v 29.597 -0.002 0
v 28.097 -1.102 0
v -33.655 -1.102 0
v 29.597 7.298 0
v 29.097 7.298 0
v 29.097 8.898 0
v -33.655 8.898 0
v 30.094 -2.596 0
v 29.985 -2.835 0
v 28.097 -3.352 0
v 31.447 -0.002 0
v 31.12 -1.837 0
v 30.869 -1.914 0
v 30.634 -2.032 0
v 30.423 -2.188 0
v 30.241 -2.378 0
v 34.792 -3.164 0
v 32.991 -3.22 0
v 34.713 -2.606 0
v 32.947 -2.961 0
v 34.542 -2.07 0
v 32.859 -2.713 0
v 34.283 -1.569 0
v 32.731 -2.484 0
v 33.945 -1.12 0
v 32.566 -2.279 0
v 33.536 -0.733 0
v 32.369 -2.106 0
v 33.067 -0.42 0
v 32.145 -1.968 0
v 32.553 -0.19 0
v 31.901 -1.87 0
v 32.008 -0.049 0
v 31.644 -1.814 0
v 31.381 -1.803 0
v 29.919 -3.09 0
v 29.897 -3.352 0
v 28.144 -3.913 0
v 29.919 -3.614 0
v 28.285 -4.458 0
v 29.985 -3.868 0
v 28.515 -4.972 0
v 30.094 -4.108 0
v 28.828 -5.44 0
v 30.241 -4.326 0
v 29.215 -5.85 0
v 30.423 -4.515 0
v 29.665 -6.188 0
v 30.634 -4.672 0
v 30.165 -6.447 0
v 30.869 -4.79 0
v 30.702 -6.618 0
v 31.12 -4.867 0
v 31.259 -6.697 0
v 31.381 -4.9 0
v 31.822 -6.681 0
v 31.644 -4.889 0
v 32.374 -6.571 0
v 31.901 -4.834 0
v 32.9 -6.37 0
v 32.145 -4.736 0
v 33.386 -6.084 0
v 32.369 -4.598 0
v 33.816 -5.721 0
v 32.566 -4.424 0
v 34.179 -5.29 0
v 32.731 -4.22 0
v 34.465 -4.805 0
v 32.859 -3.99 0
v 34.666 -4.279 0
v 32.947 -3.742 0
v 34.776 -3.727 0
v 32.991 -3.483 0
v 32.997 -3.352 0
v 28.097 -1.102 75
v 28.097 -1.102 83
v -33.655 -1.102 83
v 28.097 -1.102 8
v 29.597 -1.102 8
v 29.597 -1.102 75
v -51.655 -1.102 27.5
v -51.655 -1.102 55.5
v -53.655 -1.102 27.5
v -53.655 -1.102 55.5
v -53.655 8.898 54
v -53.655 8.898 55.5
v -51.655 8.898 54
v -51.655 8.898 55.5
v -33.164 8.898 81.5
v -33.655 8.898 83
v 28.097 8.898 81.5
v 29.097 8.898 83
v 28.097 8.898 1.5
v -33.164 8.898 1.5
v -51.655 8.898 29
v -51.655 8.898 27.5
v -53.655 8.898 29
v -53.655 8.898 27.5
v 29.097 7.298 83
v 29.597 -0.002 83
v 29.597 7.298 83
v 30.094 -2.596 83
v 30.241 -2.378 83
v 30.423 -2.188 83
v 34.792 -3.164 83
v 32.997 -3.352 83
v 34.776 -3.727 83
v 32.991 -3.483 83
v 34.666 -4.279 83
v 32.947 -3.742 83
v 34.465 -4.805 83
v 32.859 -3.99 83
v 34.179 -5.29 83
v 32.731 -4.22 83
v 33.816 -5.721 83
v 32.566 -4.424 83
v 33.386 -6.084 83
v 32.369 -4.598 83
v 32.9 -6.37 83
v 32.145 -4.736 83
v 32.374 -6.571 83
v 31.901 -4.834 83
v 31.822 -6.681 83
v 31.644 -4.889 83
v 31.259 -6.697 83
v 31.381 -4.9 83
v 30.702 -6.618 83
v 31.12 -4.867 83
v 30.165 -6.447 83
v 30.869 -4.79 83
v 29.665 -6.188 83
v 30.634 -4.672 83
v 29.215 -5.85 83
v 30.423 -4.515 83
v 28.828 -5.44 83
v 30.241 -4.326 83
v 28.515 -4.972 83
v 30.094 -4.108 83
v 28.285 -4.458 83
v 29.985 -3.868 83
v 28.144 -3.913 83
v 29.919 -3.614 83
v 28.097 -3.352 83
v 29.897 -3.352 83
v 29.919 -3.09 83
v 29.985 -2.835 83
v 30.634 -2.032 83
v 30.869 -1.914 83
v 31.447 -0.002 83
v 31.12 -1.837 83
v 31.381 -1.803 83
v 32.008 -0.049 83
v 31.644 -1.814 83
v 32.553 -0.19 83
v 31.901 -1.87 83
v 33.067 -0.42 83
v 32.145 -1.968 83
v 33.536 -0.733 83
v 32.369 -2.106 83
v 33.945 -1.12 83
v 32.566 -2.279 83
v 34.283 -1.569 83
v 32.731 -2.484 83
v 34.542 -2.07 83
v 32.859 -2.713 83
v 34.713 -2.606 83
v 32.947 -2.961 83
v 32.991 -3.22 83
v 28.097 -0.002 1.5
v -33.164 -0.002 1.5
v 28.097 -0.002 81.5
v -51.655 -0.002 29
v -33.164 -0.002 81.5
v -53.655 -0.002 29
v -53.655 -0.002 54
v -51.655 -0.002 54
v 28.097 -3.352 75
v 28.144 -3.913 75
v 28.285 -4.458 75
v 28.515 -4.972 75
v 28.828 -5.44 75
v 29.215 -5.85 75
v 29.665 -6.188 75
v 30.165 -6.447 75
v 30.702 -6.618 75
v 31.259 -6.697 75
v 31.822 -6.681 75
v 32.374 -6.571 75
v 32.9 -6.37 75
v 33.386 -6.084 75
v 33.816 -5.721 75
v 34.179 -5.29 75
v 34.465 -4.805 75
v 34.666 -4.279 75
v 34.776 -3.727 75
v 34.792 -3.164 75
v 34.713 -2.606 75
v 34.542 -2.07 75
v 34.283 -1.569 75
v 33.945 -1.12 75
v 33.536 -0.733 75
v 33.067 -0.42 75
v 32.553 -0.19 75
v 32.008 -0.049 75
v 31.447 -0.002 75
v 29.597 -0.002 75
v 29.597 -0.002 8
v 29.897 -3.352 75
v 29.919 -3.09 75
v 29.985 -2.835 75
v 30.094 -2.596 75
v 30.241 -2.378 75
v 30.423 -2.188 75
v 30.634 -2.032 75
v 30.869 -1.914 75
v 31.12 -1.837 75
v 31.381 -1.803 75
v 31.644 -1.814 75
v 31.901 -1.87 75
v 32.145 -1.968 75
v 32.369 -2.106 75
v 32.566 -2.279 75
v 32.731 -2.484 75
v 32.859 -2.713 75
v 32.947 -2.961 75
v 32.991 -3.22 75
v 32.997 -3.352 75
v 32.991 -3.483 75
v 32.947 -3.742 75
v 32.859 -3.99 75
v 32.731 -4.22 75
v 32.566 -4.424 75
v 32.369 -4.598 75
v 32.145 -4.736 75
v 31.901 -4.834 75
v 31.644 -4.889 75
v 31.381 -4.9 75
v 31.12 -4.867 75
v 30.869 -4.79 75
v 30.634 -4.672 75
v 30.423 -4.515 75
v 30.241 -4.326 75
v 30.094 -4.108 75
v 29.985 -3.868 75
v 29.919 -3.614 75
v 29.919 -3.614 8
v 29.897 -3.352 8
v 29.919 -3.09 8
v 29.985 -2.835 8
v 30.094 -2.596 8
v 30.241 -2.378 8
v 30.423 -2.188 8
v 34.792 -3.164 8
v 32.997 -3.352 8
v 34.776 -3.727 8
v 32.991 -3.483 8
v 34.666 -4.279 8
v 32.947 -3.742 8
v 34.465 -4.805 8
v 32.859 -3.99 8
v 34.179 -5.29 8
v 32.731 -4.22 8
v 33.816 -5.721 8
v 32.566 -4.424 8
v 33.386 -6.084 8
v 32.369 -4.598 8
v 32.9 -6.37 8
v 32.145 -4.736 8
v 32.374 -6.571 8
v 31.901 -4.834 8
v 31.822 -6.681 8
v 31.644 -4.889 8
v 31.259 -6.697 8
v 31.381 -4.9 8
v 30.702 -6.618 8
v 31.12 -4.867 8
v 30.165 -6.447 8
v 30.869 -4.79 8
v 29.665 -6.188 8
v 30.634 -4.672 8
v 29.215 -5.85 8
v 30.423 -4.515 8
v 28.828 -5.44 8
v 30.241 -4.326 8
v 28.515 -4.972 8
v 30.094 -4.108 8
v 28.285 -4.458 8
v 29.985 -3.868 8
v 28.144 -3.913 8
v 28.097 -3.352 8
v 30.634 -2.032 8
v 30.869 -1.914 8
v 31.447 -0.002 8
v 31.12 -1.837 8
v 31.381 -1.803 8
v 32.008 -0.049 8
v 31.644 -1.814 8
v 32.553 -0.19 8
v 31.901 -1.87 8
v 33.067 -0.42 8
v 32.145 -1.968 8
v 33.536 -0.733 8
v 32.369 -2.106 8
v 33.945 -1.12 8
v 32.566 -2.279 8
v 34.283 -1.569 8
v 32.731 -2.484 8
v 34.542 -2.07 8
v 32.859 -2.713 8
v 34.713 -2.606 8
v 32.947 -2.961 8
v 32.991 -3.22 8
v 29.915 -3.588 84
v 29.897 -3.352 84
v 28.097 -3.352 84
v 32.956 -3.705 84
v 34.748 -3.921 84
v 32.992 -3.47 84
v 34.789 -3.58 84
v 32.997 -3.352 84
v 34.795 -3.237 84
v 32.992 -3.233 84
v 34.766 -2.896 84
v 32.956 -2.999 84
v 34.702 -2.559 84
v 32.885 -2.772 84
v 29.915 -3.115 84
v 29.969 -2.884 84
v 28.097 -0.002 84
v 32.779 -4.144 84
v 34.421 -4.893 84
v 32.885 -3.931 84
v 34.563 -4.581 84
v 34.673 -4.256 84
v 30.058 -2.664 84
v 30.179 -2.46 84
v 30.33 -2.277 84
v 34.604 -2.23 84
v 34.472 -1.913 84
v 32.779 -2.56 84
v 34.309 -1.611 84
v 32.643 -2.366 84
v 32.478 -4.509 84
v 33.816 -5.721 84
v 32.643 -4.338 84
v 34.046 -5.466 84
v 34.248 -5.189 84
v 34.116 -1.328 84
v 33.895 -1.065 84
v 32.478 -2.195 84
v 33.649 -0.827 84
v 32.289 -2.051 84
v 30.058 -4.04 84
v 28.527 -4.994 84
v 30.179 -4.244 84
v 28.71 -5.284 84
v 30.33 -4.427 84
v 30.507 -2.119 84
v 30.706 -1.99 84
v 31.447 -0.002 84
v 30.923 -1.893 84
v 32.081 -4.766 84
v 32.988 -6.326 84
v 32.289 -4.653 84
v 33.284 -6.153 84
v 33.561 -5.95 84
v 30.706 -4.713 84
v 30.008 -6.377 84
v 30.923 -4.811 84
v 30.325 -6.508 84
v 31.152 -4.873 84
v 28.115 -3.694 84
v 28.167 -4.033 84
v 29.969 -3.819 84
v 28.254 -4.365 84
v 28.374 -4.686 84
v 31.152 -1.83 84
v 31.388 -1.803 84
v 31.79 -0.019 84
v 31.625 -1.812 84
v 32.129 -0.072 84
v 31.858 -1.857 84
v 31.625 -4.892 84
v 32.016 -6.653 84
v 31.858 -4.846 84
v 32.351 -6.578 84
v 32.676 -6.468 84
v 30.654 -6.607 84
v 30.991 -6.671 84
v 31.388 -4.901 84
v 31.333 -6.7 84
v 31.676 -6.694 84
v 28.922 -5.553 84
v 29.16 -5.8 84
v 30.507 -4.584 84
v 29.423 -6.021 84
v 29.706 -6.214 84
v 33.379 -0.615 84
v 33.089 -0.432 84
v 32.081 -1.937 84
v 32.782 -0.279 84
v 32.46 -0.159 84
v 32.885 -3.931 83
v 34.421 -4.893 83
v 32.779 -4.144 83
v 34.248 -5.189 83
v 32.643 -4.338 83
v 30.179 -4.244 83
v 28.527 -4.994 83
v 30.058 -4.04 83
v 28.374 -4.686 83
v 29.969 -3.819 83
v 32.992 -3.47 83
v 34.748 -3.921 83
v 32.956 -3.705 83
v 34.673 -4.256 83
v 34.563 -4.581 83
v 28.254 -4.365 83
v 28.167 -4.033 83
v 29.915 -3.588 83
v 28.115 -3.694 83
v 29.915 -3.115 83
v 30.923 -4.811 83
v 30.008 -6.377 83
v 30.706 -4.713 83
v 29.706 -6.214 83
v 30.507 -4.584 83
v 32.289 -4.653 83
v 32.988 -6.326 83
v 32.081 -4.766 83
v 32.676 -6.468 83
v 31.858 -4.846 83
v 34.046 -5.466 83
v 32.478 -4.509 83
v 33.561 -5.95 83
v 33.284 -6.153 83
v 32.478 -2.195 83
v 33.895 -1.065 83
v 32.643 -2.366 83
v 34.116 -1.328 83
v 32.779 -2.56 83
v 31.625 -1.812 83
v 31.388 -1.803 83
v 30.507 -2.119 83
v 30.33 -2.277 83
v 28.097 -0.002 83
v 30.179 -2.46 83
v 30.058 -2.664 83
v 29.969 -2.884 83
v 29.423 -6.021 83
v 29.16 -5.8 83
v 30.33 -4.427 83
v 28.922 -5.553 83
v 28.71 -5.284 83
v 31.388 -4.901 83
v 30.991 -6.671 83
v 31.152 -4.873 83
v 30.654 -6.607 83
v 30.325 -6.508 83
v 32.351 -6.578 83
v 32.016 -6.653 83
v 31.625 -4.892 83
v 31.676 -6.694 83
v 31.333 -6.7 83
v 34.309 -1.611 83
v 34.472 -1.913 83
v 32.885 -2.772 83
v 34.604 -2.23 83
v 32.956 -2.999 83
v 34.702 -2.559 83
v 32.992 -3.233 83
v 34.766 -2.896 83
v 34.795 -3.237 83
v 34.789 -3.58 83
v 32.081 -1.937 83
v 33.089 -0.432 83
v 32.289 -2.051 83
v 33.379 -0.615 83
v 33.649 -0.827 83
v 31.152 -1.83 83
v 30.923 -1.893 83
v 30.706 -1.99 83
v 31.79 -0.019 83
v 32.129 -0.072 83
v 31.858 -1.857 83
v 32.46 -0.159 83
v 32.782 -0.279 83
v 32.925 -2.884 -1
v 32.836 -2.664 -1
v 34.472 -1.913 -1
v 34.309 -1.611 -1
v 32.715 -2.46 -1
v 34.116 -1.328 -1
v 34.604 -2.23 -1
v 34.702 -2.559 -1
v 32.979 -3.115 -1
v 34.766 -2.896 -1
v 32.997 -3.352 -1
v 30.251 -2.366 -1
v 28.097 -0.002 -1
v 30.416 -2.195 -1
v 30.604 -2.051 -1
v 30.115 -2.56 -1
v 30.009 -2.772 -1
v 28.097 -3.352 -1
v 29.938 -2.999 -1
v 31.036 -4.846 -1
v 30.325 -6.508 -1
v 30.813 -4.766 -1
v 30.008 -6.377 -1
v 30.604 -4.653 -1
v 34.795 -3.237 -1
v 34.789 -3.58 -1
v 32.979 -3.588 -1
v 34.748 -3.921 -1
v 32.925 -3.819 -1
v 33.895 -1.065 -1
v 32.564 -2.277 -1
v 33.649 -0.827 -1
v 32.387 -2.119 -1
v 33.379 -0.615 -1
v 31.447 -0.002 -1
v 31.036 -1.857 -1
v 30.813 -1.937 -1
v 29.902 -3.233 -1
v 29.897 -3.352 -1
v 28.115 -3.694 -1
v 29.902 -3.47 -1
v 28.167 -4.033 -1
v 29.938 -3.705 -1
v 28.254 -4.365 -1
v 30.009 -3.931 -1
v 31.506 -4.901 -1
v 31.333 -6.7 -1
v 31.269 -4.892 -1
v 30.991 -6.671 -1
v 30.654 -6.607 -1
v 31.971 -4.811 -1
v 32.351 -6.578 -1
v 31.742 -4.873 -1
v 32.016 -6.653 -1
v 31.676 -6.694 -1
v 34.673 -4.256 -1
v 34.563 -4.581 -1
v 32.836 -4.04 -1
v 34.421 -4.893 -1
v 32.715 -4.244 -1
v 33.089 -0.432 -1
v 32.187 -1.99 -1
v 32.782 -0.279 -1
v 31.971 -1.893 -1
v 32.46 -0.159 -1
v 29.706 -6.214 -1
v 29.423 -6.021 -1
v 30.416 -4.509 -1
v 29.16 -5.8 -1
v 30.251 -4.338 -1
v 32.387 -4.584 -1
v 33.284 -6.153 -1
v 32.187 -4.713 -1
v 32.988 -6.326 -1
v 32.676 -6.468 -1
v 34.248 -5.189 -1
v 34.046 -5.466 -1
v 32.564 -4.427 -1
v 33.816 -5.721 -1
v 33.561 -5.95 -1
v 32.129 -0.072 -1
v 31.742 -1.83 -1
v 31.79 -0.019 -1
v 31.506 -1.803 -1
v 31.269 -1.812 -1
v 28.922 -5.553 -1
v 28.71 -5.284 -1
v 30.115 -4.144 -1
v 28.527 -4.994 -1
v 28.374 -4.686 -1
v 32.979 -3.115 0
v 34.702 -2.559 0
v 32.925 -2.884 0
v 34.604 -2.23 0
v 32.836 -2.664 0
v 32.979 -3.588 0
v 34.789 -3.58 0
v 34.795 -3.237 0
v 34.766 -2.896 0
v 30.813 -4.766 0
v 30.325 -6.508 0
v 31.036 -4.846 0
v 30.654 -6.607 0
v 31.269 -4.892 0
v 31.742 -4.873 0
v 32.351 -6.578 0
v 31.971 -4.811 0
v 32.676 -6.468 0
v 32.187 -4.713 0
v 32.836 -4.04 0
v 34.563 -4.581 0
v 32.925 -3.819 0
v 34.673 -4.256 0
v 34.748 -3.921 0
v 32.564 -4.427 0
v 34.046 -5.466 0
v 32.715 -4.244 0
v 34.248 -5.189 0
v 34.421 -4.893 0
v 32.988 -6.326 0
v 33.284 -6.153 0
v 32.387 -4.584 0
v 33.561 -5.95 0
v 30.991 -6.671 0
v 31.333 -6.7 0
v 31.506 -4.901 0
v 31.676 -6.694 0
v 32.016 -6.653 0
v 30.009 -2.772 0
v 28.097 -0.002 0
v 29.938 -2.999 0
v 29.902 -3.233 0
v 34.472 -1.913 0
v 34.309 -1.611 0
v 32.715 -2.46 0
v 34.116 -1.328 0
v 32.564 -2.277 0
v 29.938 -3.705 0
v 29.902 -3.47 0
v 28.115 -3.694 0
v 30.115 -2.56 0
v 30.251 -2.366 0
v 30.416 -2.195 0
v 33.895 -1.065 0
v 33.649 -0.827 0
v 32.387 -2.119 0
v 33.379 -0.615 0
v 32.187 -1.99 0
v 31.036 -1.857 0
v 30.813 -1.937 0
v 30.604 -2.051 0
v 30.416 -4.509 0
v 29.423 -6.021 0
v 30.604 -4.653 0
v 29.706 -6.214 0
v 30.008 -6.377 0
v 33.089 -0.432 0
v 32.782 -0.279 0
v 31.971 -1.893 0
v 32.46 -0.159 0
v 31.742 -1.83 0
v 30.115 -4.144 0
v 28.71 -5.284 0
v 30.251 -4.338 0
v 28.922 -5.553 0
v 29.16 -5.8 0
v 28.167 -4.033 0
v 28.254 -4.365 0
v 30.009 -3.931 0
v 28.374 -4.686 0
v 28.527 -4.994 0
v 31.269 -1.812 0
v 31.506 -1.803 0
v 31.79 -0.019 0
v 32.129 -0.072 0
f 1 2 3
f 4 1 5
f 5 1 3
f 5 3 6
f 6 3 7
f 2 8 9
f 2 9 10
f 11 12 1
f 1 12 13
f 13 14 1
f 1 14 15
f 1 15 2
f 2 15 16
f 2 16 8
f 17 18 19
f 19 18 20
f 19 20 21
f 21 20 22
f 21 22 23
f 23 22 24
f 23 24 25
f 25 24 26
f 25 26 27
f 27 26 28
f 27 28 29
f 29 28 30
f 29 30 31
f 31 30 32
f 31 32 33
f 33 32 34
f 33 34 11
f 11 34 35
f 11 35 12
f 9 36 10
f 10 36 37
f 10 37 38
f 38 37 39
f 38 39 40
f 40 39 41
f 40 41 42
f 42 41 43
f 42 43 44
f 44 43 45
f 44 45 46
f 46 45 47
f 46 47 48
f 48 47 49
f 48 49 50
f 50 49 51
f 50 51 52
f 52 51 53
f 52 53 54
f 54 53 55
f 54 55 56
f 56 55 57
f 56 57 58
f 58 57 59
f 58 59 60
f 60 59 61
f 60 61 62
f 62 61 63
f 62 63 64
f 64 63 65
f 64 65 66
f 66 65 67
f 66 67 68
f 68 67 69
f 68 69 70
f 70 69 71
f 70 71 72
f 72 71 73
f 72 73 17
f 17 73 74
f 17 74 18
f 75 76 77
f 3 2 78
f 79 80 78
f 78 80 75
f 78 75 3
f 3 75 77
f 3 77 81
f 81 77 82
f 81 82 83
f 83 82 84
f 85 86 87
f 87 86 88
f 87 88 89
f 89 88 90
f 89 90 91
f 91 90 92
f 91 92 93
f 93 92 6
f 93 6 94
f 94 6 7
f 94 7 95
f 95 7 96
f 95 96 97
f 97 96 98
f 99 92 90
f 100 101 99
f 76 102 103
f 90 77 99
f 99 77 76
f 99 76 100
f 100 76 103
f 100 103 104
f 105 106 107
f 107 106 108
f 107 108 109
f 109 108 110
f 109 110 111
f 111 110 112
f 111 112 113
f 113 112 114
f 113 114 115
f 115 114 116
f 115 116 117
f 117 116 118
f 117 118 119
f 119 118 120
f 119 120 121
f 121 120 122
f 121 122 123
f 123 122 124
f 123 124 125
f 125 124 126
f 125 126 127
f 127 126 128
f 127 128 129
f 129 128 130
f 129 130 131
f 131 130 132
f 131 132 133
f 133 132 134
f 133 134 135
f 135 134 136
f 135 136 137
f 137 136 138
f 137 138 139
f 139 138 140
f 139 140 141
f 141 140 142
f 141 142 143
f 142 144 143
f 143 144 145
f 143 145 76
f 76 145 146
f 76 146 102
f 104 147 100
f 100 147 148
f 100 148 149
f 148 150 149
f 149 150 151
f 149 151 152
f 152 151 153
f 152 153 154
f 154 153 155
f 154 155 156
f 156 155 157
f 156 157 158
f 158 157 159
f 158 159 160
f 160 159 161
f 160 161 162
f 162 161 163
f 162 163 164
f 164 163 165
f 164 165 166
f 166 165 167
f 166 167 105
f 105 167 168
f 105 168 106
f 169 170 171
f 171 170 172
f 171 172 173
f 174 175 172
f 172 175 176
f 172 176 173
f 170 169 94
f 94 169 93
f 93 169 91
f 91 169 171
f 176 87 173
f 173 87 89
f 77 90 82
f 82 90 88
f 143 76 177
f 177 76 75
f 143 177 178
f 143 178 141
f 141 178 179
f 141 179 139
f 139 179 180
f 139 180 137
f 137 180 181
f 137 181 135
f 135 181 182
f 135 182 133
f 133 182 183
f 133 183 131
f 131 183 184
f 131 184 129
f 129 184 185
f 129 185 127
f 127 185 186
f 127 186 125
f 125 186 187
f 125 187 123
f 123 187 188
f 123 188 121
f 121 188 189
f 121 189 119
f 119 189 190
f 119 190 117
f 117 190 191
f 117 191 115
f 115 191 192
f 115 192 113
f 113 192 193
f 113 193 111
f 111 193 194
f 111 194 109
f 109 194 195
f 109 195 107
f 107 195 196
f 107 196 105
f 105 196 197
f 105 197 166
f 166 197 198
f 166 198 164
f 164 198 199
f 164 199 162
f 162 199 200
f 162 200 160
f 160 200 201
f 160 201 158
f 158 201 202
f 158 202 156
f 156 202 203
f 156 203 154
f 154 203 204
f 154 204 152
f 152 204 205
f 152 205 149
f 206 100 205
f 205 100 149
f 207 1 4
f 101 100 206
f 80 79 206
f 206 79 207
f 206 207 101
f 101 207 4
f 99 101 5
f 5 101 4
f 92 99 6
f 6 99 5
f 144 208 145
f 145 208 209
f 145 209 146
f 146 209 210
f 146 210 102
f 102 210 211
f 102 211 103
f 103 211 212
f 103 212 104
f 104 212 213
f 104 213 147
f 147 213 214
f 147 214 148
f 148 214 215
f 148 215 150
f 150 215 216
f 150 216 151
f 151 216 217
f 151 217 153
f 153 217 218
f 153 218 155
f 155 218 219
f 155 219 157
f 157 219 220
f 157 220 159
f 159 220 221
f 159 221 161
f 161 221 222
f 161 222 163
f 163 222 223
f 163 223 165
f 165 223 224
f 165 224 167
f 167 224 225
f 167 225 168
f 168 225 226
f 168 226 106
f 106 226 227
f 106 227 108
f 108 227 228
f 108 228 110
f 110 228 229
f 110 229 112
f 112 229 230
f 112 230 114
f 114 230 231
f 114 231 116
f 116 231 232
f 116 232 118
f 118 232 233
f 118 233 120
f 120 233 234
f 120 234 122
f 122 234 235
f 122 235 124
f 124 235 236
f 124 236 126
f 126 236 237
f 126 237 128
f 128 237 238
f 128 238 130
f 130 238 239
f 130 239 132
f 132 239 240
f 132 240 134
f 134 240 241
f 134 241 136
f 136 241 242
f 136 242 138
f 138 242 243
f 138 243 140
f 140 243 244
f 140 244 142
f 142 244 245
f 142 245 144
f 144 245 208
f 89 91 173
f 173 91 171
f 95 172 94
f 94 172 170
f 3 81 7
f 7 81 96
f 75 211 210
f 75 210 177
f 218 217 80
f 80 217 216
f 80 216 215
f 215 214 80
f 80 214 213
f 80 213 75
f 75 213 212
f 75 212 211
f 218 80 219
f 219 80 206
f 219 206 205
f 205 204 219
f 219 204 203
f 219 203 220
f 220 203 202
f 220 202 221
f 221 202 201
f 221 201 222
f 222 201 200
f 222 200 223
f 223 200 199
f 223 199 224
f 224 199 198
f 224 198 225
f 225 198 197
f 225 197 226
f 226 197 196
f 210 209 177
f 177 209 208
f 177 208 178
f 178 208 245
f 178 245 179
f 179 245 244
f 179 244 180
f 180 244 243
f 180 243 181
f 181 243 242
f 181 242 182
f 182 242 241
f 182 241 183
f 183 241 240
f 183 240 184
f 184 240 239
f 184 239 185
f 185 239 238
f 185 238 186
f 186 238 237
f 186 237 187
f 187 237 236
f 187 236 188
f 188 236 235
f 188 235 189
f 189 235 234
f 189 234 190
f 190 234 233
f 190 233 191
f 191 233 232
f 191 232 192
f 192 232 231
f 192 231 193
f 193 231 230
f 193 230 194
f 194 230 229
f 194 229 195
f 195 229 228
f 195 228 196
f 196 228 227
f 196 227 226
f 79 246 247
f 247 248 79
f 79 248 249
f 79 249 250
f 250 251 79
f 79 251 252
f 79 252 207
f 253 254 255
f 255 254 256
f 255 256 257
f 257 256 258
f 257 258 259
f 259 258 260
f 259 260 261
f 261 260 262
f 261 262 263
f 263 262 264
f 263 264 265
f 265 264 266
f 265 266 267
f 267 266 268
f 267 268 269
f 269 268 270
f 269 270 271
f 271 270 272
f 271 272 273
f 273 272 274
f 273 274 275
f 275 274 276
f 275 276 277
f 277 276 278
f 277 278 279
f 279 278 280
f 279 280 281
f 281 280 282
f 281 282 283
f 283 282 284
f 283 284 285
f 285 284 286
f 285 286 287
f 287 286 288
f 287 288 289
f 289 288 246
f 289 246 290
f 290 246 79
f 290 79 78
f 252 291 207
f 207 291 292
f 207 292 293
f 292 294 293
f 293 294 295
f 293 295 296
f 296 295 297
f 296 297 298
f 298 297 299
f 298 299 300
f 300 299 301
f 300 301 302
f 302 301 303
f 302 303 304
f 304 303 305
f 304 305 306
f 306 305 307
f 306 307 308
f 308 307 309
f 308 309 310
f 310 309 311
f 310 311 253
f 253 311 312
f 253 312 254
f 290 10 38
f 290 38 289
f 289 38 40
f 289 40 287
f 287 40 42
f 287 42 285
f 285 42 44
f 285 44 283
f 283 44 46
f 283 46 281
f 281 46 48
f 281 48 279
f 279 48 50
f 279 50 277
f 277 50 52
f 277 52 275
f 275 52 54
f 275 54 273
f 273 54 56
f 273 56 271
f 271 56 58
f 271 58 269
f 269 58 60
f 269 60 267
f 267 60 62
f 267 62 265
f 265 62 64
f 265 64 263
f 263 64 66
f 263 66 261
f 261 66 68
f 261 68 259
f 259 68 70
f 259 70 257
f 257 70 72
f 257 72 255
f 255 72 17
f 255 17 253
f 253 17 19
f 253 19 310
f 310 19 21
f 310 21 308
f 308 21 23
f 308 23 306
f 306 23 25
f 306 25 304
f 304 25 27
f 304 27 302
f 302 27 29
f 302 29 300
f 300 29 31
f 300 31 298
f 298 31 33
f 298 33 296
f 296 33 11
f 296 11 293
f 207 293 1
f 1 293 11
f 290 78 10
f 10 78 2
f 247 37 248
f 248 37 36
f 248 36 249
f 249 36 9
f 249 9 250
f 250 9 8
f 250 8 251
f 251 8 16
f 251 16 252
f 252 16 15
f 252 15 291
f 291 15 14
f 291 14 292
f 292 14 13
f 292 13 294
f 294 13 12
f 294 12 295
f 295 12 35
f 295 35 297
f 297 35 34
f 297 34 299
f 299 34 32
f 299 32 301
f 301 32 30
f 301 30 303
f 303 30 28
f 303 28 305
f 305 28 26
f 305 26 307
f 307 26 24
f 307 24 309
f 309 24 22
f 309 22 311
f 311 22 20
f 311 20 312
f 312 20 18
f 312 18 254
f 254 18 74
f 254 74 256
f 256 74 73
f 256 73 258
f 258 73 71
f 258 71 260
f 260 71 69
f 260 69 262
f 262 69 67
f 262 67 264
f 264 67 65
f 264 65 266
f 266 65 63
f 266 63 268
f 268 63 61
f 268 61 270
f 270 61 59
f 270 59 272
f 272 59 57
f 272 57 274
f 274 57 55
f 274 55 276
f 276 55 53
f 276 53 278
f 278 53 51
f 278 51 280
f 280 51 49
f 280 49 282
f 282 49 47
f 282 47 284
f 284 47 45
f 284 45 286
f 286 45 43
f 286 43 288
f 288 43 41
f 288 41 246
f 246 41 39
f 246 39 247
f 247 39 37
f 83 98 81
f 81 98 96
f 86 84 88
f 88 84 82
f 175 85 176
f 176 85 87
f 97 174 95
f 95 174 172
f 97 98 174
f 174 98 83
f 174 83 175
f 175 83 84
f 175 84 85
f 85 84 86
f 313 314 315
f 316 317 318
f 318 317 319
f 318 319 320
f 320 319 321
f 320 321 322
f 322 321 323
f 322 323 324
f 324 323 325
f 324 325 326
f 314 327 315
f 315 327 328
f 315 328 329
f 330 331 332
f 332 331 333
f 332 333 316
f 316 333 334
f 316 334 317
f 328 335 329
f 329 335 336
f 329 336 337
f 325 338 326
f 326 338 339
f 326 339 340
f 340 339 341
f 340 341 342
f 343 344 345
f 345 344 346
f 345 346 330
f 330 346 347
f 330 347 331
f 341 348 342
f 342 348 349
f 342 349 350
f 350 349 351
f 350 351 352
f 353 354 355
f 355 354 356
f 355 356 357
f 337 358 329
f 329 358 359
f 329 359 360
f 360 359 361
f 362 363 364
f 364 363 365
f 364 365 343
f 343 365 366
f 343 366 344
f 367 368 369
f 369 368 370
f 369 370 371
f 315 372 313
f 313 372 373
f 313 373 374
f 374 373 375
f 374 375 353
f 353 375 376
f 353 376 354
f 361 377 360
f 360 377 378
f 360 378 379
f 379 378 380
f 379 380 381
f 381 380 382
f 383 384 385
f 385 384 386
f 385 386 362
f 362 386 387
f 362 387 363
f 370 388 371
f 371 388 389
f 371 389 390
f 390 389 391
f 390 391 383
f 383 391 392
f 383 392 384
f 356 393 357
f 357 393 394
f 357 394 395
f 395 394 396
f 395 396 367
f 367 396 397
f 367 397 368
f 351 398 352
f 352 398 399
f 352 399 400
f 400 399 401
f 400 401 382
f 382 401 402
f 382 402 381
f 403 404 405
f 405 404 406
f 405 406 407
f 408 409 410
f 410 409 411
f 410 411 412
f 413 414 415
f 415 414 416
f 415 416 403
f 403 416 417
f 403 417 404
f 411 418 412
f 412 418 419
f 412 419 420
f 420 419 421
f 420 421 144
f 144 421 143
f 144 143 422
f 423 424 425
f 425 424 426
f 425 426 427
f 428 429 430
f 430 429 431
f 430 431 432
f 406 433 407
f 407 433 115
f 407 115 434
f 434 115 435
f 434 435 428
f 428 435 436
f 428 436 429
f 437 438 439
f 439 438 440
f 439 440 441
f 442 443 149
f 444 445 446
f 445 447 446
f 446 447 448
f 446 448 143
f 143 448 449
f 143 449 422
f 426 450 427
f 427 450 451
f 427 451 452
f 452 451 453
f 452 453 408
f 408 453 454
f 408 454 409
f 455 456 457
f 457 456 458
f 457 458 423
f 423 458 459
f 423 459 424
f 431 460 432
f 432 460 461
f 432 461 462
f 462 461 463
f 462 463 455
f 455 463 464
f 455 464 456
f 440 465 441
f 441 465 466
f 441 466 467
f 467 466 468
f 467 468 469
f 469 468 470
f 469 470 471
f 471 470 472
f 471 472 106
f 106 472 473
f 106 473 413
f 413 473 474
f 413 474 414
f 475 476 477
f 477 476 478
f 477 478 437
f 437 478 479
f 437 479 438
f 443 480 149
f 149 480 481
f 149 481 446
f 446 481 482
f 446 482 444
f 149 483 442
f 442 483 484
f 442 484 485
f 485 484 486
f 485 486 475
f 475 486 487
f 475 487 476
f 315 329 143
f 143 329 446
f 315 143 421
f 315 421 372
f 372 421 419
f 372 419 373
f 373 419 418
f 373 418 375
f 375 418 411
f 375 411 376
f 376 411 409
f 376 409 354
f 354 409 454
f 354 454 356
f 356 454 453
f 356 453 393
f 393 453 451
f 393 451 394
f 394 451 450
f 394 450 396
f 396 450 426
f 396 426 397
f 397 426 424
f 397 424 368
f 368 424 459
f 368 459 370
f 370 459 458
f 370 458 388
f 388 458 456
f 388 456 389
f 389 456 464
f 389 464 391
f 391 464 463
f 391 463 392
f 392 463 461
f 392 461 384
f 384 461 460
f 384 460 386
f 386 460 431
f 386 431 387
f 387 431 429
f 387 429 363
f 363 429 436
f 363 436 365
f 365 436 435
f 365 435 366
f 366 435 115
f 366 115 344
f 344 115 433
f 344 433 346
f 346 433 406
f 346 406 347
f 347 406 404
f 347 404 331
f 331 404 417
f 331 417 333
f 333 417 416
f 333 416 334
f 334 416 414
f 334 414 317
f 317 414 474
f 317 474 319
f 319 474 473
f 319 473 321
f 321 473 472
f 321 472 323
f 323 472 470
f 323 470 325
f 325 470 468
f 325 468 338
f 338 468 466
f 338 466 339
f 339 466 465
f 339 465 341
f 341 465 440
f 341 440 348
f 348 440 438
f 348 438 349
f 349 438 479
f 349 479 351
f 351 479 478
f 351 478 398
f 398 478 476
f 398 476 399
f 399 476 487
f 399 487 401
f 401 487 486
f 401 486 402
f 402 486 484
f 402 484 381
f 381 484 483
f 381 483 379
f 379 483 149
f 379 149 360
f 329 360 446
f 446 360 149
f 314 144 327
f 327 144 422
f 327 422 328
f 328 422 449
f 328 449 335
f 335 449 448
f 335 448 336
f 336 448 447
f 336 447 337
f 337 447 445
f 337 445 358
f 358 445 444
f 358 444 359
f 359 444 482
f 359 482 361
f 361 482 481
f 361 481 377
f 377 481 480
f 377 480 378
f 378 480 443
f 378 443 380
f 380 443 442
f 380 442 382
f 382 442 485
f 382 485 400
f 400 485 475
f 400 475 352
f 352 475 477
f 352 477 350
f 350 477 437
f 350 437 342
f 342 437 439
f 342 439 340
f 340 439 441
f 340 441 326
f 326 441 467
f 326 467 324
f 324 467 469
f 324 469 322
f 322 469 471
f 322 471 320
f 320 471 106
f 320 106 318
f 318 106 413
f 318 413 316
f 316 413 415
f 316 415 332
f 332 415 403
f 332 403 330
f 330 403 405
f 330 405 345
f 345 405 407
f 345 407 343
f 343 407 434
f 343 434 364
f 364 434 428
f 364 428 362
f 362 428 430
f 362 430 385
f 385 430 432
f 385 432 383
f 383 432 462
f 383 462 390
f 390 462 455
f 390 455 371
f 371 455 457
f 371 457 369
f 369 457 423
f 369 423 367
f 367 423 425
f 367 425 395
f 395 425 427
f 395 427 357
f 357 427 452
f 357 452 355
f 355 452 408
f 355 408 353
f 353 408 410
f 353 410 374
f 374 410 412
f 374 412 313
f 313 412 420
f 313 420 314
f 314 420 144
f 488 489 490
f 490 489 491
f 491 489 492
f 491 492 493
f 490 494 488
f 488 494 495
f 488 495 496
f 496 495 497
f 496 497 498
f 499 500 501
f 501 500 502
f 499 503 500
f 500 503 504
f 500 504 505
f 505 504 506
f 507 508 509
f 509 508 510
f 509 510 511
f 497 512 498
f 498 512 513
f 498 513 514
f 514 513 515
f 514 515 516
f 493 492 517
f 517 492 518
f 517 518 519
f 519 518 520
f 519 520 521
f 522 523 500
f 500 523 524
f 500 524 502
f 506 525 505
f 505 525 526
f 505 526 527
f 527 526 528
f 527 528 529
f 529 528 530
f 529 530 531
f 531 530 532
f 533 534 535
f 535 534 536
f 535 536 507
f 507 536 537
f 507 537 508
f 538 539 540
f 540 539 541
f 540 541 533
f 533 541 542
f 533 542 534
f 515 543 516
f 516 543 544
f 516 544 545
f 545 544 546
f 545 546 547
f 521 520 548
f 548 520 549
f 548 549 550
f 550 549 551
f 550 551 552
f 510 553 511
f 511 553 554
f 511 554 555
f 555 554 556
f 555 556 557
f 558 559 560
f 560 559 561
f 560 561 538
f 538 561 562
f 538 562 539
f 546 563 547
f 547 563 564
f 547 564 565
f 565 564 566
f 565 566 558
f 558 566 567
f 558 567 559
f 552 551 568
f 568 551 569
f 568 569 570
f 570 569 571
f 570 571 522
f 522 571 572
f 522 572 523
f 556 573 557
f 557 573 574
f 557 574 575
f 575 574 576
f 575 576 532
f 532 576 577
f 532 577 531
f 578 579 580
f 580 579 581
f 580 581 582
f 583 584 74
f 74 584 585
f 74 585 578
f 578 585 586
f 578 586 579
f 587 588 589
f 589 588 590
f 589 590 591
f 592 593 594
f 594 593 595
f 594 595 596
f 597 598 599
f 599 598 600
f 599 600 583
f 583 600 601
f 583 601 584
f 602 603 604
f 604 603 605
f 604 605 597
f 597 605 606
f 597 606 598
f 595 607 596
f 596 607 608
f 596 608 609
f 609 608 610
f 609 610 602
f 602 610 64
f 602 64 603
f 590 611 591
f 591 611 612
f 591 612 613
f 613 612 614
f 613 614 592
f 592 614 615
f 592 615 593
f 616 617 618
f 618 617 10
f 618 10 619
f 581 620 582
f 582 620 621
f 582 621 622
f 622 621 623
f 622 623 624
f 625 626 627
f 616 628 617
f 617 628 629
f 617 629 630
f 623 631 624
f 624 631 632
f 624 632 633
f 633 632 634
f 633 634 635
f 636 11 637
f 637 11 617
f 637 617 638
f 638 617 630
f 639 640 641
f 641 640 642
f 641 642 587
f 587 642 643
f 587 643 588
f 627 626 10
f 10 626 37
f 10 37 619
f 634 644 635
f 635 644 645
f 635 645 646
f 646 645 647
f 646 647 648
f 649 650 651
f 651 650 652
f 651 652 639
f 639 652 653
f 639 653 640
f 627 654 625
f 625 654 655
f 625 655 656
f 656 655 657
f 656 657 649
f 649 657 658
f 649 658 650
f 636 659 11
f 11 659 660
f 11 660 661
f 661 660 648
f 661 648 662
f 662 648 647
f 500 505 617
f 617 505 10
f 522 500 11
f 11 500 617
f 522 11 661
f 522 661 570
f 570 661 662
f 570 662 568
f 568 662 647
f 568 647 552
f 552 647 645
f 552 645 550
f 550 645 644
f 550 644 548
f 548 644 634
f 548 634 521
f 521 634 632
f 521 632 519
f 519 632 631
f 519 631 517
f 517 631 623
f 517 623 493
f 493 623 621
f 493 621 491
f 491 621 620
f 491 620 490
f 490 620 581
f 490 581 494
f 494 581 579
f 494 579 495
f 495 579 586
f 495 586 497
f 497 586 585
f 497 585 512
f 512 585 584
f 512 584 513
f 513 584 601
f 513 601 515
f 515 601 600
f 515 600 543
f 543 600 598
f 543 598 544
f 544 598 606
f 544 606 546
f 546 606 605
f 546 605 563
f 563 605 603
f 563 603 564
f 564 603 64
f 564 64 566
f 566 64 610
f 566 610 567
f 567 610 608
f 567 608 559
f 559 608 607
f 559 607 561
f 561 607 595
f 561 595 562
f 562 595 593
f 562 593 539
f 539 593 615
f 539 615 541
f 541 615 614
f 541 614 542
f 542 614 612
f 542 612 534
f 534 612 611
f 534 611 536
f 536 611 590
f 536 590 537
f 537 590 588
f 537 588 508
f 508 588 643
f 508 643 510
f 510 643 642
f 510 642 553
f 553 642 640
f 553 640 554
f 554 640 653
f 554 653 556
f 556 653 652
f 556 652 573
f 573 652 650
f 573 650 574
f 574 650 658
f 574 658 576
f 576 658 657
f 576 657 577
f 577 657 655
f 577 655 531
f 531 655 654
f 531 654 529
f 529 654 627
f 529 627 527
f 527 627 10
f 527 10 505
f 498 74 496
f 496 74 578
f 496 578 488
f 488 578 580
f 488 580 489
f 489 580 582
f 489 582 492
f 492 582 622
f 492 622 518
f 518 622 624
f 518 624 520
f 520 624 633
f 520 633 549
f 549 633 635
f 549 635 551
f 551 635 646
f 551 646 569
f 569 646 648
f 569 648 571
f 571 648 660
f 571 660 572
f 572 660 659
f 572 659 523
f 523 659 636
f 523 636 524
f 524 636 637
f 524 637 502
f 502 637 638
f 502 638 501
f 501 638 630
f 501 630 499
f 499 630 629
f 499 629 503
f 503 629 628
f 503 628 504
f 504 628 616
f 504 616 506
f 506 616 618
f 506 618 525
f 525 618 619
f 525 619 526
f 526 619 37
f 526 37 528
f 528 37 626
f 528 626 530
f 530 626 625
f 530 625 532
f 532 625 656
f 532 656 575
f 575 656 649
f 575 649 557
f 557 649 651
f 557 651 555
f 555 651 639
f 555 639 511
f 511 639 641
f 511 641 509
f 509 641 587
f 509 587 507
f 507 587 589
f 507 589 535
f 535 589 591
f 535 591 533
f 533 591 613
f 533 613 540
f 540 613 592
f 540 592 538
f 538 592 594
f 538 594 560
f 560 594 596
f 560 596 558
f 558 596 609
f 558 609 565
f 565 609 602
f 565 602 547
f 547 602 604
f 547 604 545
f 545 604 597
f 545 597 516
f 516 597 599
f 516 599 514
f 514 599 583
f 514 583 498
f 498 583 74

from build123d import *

# Parameters (mm, degrees)
SKETCH_2_R               = 1.55
EXTRUDE_1_DEPTH          = 83
SKETCH_3_W               = 79.752323104
SKETCH_3_H               = 1.5
EXTRUDE_2_DEPTH          = 8.9
EXTRUDE_2_2_DEPTH        = 8.9
EXTRUDE_3_DEPTH          = 8.9
CUT_EXTRUDE_2_DEPTH      = 9
CUT_EXTRUDE_2_DEPTH_BACK = 1.5
SKETCH_15_R              = 1.55
CUT_EXTRUDE_6_DEPTH      = 75
SKETCH_16_R              = 1.55
EXTRUDE_5_DEPTH          = 8
EXTRUDE_6_DEPTH          = 2
SKETCH_18_R              = 1.55
EXTRUDE_8_DEPTH          = 1
SKETCH_19_R              = 1.55
EXTRUDE_9_DEPTH          = 1


with BuildPart() as part:
    # Эскиз2 → Бобышка-Вытянуть1 (new body)
    with BuildSketch(Plane.XY):
        with BuildLine():
            Line((28.096955486, -1.101794634), (-25.790710178, -1.101794634))
            Line((-25.790710178, -1.101794634), (-31.655367618, -1.101794634))
            Line((-31.655367618, -1.101794634), (-51.655367618, -1.101794634))
            Line((-51.655367618, -1.101794634), (-51.655367618, -0.001794634))
            Line((-51.655367618, -0.001794634), (-31.655367618, -0.001794634))
            Line((-31.655367618, -0.001794634), (-29.655367618, -0.001794634))
            Line((-29.655367618, -0.001794634), (28.096955486, -0.001794634))
            Line((28.096955486, -0.001794634), (28.096955486, 8.898205366))
            Line((28.096955486, 8.898205366), (29.096955486, 8.898205366))
            Line((29.096955486, 8.898205366), (29.096955486, 7.298205366))
            Line((29.096955486, 7.298205366), (29.596955486, 7.298205366))
            Line((29.596955486, 7.298205366), (29.596955486, -0.001794634))
            Line((29.596955486, -0.001794634), (31.446955486, -0.001794634))
            ThreePointArc((31.446955486, -0.001794634), (33.815763203, -5.720602351), (28.096955486, -3.351794634))
            Line((28.096955486, -3.351794634), (28.096955486, -1.101794634))
        make_face()
        with Locations((31.446955486, -3.351794634)):
            Circle(SKETCH_2_R, mode=Mode.SUBTRACT)
    extrude(amount=EXTRUDE_1_DEPTH)



with BuildPart() as body_2:
    # Эскиз3 → Бобышка-Вытянуть2 (new body)
    with BuildSketch(Plane(origin=(0, -0.001794634, 0), x_dir=(1, 0, 0), z_dir=(0, 1, 0))):
        with Locations((-11.779206066, -0.75)):
            Rectangle(SKETCH_3_W, SKETCH_3_H)
    extrude(amount=EXTRUDE_2_DEPTH)


with BuildPart() as body_3:
    # Эскиз3 → Extrude 2 2 (new body)
    with BuildSketch(Plane(origin=(0, -0.001794634, 0), x_dir=(1, 0, 0), z_dir=(0, 1, 0))):
        with Locations((-11.779206066, -82.25)):
            Rectangle(SKETCH_3_W, SKETCH_3_H)
    extrude(amount=EXTRUDE_2_2_DEPTH)


with BuildPart() as part_1:
    add(part.part)

    add(body_2.part)  # Бобышка-Вытянуть3 merges body 2

    add(body_3.part)  # Бобышка-Вытянуть3 merges body 3
    # Эскиз5 → Бобышка-Вытянуть3 (add)
    with BuildSketch(Plane(origin=(0, -0.001794634, 0), x_dir=(1, 0, 0), z_dir=(0, 1, 0))):
        Polygon((-32.155367618, -83), (-51.655367618, -54), (-51.655367618, -55.5), (-33.655367618, -83), align=None)
        Polygon((-33.655367618, 0), (-51.655367618, -27.5), (-51.655367618, -29), (-32.155367618, 0), align=None)
    extrude(amount=EXTRUDE_3_DEPTH)

    # Эскиз7 → Вырез-Вытянуть2 (cut, two sides: drawn at the far end of the back side and taken through both)
    with BuildSketch(Plane(origin=(0, -0.001794634, 0), x_dir=(1, 0, 0), z_dir=(0, 1, 0)).offset(-CUT_EXTRUDE_2_DEPTH_BACK)):
        Polygon((-51.655367618, -27.5), (-51.655367618, 0), (-33.655367618, 0), (-34.637185799, -1.5), align=None)
        Polygon((-51.655367618, -55.5), (-34.637185799, -81.5), (-33.655367618, -83), (-51.655367618, -83), align=None)
    extrude(amount=CUT_EXTRUDE_2_DEPTH + CUT_EXTRUDE_2_DEPTH_BACK, mode=Mode.SUBTRACT)

    # Эскиз15 → Вырез-Вытянуть6 (cut)
    with BuildSketch(Plane.XY):
        with BuildLine():
            Line((31.446955486, -0.001794634), (29.596955486, -0.001794634))
            Line((29.596955486, -0.001794634), (29.596955486, -1.101794634))
            Line((29.596955486, -1.101794634), (28.096955486, -1.101794634))
            Line((28.096955486, -1.101794634), (28.096955486, -3.351794634))
            ThreePointArc((28.096955486, -3.351794634), (33.815763203, -5.720602351), (31.446955486, -0.001794634))
        make_face()
        with Locations((31.446955486, -3.351794634)):
            Circle(SKETCH_15_R, mode=Mode.SUBTRACT)
    extrude(amount=CUT_EXTRUDE_6_DEPTH, mode=Mode.SUBTRACT)

    # Эскиз16 → Бобышка-Вытянуть5 (add)
    with BuildSketch(Plane.XY):
        with BuildLine():
            Line((31.446955486, -0.001794634), (29.596955486, -0.001794634))
            Line((29.596955486, -0.001794634), (29.596955486, -1.101794634))
            Line((29.596955486, -1.101794634), (28.096955486, -1.101794634))
            Line((28.096955486, -1.101794634), (28.096955486, -3.351794634))
            ThreePointArc((28.096955486, -3.351794634), (33.815763203, -5.720602351), (31.446955486, -0.001794634))
        make_face()
        with Locations((31.446955486, -3.351794634)):
            Circle(SKETCH_16_R, mode=Mode.SUBTRACT)
    extrude(amount=EXTRUDE_5_DEPTH)

    # Эскиз17 → Бобышка-Вытянуть6 (add)
    with BuildSketch(Plane.ZY.offset(51.655367618)):
        Polygon((54, 8.898205366), (55.5, 8.898205366), (55.5, -1.101794634), (27.5, -1.101794634), (27.5, 8.898205366), (29, 8.898205366), (29, -0.001794634), (54, -0.001794634), align=None)
    extrude(amount=EXTRUDE_6_DEPTH)


with BuildPart() as body_2_2:
    # Эскиз18 → Бобышка-Вытянуть8 (new body)
    with BuildSketch(Plane.XY.offset(83)):
        with BuildLine():
            Line((31.446955486, -0.001794634), (28.096955486, -0.001794634))
            Line((28.096955486, -0.001794634), (28.096955486, -3.351794634))
            ThreePointArc((28.096955486, -3.351794634), (33.815763203, -5.720602351), (31.446955486, -0.001794634))
        make_face()
        with Locations((31.446955486, -3.351794634)):
            Circle(SKETCH_18_R, mode=Mode.SUBTRACT)
    extrude(amount=EXTRUDE_8_DEPTH)


with BuildPart() as body_3_2:
    # Эскиз19 → Бобышка-Вытянуть9 (new body)
    with BuildSketch(Plane(origin=(0, 0, 0), x_dir=(-1, 0, 0), z_dir=(0, 0, -1))):
        with BuildLine():
            Line((-31.446955486, -0.001794634), (-28.096955486, -0.001794634))
            Line((-28.096955486, -0.001794634), (-28.096955486, -3.351794634))
            ThreePointArc((-28.096955486, -3.351794634), (-33.815763203, -5.720602351), (-31.446955486, -0.001794634))
        make_face()
        with Locations((-31.446955486, -3.351794634)):
            Circle(SKETCH_19_R, mode=Mode.SUBTRACT)
    extrude(amount=EXTRUDE_9_DEPTH)


solid = Compound([part_1.part, body_2_2.part, body_3_2.part])
